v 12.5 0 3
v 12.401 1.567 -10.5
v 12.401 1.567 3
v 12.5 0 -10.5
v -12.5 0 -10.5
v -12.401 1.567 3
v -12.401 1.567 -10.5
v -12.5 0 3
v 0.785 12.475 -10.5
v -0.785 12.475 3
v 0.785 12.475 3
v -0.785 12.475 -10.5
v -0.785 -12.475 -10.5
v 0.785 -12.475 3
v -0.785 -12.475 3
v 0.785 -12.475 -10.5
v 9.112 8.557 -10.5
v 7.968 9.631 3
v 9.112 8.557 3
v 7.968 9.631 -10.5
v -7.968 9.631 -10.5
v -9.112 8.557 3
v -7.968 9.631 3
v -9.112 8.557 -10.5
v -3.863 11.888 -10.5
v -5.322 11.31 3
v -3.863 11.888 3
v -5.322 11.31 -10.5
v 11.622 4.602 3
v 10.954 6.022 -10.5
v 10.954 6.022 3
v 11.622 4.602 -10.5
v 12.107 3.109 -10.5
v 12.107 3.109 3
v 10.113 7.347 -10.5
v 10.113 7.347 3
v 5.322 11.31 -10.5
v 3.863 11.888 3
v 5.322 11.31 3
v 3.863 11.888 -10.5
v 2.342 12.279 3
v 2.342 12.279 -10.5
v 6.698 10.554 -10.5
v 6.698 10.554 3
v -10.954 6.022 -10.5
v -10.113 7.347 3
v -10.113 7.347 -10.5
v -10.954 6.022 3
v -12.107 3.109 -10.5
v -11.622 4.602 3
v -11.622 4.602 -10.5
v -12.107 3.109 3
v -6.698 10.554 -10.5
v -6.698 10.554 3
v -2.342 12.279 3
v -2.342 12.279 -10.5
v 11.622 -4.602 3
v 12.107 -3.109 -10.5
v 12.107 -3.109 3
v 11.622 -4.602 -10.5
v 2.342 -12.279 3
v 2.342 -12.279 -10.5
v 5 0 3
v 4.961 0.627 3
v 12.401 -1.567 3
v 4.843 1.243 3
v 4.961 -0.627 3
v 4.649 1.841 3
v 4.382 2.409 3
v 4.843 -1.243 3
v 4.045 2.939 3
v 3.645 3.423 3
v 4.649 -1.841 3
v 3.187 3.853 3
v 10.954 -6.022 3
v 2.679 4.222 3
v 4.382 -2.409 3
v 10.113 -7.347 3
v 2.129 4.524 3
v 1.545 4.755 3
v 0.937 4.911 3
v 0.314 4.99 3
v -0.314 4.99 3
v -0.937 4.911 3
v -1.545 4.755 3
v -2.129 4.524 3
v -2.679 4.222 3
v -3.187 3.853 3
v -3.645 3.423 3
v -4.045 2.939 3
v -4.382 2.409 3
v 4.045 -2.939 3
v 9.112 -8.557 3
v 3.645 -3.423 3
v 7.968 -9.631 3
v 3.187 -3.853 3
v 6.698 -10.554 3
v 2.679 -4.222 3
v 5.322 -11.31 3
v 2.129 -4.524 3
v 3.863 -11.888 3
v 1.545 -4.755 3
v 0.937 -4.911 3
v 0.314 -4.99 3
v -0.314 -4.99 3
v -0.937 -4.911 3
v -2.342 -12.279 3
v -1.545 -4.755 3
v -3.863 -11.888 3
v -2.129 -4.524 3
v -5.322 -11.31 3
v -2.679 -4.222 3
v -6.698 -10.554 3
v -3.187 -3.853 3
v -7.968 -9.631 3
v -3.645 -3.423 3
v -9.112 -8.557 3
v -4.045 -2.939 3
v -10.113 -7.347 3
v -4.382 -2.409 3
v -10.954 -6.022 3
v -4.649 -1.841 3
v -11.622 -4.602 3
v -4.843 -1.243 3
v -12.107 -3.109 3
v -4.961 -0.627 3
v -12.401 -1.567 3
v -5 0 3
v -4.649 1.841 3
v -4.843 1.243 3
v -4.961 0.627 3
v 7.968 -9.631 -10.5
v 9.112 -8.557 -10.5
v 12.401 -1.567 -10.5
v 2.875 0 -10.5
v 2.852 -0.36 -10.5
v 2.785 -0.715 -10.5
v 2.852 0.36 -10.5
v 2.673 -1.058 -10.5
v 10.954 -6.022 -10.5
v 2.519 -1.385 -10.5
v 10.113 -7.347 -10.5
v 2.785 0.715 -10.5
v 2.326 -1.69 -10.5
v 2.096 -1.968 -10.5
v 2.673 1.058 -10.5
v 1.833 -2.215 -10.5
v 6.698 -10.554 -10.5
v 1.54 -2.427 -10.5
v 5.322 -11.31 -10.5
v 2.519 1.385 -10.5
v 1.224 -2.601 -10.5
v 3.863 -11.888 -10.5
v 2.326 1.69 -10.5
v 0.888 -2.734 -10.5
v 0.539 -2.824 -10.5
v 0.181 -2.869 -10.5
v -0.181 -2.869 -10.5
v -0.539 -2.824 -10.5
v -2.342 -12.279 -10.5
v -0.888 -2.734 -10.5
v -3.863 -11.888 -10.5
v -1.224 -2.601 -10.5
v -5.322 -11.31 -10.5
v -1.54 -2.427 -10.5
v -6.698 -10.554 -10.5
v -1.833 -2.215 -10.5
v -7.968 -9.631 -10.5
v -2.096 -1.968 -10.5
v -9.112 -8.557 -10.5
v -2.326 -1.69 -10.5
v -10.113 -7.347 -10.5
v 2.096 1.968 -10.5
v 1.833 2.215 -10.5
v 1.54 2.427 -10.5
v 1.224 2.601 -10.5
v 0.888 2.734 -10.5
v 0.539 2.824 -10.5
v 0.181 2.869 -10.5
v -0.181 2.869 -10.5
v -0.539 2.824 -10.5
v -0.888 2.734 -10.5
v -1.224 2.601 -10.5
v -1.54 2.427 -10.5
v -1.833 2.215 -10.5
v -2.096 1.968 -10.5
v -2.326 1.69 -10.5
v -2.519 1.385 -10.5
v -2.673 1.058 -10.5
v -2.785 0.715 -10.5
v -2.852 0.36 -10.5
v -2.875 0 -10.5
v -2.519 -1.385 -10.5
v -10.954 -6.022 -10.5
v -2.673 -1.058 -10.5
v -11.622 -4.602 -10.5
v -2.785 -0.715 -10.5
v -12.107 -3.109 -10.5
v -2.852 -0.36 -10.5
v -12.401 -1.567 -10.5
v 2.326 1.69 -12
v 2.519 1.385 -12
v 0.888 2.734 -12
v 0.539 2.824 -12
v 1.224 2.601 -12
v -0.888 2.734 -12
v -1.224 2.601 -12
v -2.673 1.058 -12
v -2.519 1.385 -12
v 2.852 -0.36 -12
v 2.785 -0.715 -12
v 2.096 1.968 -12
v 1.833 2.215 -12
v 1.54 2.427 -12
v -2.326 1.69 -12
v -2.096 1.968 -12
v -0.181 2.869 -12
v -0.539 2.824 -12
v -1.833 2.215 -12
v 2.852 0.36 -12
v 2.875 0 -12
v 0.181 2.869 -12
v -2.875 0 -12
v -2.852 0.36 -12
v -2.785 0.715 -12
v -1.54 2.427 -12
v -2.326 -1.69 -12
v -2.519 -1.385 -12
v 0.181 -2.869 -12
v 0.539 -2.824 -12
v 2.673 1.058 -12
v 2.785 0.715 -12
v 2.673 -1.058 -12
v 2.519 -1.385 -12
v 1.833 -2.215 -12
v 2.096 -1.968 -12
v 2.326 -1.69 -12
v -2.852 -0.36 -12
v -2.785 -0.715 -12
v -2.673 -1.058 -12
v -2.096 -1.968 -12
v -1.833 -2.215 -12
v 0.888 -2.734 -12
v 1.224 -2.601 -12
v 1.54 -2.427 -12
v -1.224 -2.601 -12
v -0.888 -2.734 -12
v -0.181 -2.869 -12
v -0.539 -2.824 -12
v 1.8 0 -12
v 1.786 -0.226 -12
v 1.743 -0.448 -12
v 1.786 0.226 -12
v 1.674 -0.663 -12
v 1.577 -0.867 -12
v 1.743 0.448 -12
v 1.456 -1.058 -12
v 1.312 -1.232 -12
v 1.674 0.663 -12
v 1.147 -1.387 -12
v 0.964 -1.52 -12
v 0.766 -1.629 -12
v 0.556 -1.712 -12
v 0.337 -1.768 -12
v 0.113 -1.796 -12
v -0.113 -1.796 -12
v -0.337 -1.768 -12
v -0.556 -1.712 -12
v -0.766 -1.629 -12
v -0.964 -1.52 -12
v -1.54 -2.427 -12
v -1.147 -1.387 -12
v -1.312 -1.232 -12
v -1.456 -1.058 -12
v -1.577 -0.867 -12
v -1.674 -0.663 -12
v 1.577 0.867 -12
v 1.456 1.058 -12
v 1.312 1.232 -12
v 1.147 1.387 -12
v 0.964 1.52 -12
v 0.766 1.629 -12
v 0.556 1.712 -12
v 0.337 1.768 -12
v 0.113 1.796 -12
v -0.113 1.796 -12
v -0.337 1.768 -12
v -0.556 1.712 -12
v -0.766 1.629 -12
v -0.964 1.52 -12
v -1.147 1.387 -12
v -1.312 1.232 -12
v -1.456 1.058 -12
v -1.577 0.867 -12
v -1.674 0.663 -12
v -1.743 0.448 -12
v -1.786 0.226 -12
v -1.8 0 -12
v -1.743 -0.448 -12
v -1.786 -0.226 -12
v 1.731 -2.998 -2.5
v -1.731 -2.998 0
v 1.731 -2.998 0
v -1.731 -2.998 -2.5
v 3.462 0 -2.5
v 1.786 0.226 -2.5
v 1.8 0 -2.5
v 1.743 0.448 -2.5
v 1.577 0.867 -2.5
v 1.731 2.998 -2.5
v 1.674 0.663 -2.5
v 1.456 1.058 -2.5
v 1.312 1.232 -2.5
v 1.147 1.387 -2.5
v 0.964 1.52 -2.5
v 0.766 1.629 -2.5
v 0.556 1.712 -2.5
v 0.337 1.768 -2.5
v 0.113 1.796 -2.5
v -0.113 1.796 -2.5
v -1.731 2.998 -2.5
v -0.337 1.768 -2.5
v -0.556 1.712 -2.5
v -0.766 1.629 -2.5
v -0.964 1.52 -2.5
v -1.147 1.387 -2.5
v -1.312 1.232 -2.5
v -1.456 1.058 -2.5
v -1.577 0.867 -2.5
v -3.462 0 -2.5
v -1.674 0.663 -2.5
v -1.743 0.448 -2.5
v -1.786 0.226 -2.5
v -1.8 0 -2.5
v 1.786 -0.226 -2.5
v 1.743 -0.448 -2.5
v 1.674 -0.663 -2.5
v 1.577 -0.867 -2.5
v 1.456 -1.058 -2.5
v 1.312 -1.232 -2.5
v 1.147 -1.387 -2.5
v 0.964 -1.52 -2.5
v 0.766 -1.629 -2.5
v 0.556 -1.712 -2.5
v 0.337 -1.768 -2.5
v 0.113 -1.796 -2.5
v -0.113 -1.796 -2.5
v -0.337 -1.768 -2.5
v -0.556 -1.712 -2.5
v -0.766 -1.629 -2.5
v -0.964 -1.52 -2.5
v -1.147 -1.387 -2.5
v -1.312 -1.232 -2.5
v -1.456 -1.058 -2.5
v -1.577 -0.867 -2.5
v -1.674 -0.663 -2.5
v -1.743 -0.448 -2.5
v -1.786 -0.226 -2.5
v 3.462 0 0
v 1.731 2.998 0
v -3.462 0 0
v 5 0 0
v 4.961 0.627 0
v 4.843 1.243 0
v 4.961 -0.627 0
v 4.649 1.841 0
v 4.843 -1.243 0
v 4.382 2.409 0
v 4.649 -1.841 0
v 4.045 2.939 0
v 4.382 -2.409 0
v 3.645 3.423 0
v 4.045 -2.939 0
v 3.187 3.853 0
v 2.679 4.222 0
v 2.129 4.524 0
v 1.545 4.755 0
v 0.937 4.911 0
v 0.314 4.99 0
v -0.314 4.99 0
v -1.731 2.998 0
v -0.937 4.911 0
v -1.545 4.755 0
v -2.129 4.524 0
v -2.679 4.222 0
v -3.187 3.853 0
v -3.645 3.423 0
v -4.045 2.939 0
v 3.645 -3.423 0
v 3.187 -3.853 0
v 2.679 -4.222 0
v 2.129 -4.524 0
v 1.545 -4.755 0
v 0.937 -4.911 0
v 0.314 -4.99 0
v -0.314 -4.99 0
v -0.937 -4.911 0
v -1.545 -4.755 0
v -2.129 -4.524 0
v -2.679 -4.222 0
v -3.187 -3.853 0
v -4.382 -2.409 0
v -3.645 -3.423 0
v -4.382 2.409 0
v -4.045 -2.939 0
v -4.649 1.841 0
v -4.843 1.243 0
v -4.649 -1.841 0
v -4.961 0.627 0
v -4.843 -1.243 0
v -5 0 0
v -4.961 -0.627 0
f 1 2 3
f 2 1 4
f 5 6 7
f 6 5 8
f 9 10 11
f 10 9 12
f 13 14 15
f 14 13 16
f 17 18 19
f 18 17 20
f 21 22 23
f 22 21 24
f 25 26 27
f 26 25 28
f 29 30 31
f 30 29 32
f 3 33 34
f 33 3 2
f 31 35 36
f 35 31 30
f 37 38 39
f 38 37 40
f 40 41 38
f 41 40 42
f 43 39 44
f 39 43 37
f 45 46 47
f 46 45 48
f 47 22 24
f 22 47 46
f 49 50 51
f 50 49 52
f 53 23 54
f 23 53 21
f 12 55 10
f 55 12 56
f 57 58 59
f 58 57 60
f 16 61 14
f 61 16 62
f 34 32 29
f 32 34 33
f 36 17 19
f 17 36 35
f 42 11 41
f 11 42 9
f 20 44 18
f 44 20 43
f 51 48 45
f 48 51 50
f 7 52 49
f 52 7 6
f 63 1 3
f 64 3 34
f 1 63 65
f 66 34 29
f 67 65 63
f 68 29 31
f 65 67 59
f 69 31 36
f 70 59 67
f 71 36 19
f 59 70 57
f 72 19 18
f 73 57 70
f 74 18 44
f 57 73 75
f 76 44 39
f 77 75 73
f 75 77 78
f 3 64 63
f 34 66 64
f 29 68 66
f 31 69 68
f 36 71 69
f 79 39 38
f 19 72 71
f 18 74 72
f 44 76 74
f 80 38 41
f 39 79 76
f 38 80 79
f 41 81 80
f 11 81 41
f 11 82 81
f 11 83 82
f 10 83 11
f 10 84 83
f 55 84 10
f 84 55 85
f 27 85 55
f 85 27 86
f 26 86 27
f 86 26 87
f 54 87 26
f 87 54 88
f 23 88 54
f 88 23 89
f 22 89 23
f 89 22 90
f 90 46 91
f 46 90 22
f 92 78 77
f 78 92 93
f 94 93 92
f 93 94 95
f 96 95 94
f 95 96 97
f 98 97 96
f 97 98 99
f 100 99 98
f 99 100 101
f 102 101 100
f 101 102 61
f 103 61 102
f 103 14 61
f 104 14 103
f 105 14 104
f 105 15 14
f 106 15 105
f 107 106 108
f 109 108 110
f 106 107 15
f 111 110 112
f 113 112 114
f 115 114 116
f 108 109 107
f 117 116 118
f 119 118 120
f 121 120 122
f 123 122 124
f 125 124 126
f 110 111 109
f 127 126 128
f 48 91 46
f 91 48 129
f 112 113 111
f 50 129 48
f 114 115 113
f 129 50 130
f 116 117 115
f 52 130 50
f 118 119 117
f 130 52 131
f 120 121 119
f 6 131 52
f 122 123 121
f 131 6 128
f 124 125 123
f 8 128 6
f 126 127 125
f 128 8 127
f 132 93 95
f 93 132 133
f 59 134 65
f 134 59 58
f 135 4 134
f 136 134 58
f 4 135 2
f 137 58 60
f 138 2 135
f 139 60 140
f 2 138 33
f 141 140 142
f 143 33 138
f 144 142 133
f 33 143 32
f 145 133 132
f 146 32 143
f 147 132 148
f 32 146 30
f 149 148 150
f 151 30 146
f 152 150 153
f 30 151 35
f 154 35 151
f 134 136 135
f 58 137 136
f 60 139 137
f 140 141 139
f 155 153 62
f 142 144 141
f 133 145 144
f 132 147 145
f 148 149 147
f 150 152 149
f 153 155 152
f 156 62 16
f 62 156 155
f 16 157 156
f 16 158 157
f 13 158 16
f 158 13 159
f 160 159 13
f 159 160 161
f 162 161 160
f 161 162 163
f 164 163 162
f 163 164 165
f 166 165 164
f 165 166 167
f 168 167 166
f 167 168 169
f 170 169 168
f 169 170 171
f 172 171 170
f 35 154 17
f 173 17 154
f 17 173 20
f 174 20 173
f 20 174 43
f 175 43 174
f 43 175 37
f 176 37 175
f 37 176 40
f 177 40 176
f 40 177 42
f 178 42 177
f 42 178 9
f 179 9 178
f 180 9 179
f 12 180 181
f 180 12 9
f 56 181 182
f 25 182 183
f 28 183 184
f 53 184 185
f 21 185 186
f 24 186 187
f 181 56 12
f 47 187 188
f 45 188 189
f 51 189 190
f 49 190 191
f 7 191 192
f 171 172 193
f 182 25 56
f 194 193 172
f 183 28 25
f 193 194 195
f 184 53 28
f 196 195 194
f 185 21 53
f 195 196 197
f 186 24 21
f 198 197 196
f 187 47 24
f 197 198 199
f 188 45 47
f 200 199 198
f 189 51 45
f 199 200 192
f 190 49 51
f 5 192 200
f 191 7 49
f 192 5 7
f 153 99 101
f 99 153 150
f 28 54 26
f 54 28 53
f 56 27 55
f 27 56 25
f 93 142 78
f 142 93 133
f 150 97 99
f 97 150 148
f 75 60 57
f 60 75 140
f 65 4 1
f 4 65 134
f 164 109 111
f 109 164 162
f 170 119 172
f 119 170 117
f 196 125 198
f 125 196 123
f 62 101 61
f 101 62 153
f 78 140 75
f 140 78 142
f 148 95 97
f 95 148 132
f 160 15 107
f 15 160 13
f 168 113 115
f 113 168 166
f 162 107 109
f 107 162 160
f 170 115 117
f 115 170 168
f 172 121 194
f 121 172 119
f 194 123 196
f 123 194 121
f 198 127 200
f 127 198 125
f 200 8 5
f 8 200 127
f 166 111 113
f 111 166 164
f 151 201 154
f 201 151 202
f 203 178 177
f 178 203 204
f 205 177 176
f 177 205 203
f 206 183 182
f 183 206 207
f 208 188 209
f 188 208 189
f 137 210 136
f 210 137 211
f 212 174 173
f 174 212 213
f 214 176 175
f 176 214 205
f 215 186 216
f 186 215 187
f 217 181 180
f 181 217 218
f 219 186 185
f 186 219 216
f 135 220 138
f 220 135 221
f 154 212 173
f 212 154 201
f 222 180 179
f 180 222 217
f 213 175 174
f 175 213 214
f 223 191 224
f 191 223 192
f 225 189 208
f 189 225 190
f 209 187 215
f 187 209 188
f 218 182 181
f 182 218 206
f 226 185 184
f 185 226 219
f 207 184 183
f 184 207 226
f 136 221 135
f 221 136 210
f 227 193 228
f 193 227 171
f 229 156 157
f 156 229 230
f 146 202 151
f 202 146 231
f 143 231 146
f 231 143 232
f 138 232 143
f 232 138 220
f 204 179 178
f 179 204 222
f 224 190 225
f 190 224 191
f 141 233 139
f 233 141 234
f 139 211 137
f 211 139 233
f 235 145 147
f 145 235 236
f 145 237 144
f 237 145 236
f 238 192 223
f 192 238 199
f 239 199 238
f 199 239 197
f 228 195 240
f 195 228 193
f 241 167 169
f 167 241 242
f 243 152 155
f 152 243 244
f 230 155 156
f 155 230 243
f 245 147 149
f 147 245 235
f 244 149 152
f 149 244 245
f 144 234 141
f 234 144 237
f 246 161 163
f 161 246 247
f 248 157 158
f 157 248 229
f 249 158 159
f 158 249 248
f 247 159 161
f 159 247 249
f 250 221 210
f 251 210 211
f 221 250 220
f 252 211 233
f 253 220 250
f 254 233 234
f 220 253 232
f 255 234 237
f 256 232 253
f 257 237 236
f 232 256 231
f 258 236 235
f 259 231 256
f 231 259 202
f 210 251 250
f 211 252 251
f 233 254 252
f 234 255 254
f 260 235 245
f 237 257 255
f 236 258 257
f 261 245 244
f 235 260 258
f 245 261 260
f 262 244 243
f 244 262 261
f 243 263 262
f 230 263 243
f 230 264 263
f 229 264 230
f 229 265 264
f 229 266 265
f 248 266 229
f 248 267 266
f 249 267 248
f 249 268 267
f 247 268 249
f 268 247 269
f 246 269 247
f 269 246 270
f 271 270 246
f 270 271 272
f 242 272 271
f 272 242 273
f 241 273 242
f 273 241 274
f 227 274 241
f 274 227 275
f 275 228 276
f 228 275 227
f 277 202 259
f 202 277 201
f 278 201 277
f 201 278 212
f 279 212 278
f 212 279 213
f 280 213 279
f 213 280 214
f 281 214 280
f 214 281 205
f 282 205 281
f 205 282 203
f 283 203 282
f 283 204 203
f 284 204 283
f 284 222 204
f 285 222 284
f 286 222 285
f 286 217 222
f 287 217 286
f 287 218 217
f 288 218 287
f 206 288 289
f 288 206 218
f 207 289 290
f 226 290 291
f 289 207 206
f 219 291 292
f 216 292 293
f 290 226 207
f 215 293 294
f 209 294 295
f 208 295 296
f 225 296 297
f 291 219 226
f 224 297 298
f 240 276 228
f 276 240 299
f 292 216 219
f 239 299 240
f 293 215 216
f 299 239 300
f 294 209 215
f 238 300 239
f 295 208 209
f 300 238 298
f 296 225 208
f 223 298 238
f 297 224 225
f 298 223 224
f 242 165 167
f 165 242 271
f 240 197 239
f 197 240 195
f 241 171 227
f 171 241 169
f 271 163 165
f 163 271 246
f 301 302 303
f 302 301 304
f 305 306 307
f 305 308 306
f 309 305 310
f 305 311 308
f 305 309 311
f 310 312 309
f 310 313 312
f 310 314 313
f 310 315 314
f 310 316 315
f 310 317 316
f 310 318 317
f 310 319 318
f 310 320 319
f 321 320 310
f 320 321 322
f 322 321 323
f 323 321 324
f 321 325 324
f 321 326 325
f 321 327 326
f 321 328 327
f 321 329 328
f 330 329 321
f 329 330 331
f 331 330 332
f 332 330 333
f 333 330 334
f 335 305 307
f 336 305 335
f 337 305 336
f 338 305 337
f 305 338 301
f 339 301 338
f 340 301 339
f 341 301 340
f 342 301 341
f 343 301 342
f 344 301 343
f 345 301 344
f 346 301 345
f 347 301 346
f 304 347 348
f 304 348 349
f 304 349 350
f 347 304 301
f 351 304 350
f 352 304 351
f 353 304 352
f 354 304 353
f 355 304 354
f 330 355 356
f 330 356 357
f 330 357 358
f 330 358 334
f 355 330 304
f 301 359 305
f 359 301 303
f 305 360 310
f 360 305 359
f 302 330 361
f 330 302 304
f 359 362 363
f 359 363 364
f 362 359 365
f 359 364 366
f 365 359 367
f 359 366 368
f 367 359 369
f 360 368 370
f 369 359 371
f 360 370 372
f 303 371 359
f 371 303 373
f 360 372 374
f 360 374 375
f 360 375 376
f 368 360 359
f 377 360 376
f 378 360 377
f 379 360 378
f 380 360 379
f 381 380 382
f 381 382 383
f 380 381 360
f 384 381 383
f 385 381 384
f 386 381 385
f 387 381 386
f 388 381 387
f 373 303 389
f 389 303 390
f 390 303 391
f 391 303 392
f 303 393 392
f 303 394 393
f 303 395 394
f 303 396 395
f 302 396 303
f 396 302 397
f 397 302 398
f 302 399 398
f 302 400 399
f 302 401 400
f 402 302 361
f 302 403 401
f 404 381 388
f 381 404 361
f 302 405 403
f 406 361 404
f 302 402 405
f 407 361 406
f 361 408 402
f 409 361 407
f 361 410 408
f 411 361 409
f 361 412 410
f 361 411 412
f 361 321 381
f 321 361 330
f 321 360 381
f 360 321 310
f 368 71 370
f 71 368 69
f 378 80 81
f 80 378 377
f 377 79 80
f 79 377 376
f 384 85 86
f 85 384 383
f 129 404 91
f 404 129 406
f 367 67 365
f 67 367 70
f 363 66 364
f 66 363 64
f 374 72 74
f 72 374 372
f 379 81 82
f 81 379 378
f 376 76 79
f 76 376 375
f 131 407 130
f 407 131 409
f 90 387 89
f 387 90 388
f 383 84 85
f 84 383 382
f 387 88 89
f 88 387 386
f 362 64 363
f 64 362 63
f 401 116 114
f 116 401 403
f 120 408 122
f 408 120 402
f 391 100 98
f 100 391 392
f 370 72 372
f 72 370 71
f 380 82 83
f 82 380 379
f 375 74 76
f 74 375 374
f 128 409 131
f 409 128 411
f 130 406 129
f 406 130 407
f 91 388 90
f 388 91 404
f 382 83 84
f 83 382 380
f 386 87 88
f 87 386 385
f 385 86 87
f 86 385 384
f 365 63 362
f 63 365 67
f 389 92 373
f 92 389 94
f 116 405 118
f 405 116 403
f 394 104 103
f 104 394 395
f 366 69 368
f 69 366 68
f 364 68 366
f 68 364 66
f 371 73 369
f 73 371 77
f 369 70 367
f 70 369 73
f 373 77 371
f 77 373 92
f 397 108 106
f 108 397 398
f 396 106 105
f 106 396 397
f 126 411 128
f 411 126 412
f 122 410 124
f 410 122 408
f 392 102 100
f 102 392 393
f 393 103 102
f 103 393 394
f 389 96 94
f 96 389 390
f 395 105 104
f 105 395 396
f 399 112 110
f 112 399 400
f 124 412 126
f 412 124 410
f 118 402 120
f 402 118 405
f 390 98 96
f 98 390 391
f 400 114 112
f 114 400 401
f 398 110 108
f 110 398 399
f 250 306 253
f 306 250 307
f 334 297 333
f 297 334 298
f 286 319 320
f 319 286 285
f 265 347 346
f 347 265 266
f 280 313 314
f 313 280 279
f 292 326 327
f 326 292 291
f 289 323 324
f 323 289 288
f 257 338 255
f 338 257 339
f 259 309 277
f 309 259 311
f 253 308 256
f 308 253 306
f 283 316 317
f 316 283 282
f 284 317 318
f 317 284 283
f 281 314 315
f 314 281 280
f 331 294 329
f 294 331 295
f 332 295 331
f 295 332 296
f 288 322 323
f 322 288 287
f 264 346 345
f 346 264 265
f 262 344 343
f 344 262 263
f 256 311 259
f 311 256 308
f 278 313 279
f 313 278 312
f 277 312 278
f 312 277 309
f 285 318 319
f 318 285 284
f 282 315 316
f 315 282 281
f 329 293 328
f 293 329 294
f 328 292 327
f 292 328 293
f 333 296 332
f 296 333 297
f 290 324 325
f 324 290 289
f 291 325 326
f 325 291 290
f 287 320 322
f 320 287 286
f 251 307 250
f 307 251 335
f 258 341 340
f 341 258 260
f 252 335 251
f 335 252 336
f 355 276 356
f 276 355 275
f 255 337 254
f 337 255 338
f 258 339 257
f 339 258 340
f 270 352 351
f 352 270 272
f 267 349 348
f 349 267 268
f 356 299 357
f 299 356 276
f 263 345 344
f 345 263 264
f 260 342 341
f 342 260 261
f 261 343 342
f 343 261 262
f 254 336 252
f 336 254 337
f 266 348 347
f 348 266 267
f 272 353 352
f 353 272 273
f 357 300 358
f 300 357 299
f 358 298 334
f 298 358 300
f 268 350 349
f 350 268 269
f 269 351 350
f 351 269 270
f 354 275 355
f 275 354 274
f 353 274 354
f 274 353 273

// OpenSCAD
$fn = 50;

difference() {
	union() {
		translate(v = [0, 0, -10.5]) {
			cylinder(h = 13.5, r = 12.5);
		}
		#translate(v = [0, 0, -12.0]) {
			cylinder(h = 12, r = 2.875);
		}
	}
	union() {
		translate(v = [0, 0, 0]) {
			rotate(a = [0, 0, 0]) {
				difference() {
					union() {
						translate(v = [0, 0, -2.5]) {
							linear_extrude(height = 2.5) {
								polygon(points = [[3.4619999999999997, 0.0], [1.7310000000000003, 2.9981799479017264], [-1.7309999999999992, 2.9981799479017264], [-3.4619999999999997, 4.2397272186481365e-16], [-1.7310000000000014, -2.998179947901726], [1.7309999999999977, -2.9981799479017277]]);
							}
						}
					}
					union();
				}
			}
		}
		#cylinder(h = 3, r = 5.0);
		#translate(v = [0, 0, -100.0]) {
			cylinder(h = 200, r = 1.8);
		}
	}
}
